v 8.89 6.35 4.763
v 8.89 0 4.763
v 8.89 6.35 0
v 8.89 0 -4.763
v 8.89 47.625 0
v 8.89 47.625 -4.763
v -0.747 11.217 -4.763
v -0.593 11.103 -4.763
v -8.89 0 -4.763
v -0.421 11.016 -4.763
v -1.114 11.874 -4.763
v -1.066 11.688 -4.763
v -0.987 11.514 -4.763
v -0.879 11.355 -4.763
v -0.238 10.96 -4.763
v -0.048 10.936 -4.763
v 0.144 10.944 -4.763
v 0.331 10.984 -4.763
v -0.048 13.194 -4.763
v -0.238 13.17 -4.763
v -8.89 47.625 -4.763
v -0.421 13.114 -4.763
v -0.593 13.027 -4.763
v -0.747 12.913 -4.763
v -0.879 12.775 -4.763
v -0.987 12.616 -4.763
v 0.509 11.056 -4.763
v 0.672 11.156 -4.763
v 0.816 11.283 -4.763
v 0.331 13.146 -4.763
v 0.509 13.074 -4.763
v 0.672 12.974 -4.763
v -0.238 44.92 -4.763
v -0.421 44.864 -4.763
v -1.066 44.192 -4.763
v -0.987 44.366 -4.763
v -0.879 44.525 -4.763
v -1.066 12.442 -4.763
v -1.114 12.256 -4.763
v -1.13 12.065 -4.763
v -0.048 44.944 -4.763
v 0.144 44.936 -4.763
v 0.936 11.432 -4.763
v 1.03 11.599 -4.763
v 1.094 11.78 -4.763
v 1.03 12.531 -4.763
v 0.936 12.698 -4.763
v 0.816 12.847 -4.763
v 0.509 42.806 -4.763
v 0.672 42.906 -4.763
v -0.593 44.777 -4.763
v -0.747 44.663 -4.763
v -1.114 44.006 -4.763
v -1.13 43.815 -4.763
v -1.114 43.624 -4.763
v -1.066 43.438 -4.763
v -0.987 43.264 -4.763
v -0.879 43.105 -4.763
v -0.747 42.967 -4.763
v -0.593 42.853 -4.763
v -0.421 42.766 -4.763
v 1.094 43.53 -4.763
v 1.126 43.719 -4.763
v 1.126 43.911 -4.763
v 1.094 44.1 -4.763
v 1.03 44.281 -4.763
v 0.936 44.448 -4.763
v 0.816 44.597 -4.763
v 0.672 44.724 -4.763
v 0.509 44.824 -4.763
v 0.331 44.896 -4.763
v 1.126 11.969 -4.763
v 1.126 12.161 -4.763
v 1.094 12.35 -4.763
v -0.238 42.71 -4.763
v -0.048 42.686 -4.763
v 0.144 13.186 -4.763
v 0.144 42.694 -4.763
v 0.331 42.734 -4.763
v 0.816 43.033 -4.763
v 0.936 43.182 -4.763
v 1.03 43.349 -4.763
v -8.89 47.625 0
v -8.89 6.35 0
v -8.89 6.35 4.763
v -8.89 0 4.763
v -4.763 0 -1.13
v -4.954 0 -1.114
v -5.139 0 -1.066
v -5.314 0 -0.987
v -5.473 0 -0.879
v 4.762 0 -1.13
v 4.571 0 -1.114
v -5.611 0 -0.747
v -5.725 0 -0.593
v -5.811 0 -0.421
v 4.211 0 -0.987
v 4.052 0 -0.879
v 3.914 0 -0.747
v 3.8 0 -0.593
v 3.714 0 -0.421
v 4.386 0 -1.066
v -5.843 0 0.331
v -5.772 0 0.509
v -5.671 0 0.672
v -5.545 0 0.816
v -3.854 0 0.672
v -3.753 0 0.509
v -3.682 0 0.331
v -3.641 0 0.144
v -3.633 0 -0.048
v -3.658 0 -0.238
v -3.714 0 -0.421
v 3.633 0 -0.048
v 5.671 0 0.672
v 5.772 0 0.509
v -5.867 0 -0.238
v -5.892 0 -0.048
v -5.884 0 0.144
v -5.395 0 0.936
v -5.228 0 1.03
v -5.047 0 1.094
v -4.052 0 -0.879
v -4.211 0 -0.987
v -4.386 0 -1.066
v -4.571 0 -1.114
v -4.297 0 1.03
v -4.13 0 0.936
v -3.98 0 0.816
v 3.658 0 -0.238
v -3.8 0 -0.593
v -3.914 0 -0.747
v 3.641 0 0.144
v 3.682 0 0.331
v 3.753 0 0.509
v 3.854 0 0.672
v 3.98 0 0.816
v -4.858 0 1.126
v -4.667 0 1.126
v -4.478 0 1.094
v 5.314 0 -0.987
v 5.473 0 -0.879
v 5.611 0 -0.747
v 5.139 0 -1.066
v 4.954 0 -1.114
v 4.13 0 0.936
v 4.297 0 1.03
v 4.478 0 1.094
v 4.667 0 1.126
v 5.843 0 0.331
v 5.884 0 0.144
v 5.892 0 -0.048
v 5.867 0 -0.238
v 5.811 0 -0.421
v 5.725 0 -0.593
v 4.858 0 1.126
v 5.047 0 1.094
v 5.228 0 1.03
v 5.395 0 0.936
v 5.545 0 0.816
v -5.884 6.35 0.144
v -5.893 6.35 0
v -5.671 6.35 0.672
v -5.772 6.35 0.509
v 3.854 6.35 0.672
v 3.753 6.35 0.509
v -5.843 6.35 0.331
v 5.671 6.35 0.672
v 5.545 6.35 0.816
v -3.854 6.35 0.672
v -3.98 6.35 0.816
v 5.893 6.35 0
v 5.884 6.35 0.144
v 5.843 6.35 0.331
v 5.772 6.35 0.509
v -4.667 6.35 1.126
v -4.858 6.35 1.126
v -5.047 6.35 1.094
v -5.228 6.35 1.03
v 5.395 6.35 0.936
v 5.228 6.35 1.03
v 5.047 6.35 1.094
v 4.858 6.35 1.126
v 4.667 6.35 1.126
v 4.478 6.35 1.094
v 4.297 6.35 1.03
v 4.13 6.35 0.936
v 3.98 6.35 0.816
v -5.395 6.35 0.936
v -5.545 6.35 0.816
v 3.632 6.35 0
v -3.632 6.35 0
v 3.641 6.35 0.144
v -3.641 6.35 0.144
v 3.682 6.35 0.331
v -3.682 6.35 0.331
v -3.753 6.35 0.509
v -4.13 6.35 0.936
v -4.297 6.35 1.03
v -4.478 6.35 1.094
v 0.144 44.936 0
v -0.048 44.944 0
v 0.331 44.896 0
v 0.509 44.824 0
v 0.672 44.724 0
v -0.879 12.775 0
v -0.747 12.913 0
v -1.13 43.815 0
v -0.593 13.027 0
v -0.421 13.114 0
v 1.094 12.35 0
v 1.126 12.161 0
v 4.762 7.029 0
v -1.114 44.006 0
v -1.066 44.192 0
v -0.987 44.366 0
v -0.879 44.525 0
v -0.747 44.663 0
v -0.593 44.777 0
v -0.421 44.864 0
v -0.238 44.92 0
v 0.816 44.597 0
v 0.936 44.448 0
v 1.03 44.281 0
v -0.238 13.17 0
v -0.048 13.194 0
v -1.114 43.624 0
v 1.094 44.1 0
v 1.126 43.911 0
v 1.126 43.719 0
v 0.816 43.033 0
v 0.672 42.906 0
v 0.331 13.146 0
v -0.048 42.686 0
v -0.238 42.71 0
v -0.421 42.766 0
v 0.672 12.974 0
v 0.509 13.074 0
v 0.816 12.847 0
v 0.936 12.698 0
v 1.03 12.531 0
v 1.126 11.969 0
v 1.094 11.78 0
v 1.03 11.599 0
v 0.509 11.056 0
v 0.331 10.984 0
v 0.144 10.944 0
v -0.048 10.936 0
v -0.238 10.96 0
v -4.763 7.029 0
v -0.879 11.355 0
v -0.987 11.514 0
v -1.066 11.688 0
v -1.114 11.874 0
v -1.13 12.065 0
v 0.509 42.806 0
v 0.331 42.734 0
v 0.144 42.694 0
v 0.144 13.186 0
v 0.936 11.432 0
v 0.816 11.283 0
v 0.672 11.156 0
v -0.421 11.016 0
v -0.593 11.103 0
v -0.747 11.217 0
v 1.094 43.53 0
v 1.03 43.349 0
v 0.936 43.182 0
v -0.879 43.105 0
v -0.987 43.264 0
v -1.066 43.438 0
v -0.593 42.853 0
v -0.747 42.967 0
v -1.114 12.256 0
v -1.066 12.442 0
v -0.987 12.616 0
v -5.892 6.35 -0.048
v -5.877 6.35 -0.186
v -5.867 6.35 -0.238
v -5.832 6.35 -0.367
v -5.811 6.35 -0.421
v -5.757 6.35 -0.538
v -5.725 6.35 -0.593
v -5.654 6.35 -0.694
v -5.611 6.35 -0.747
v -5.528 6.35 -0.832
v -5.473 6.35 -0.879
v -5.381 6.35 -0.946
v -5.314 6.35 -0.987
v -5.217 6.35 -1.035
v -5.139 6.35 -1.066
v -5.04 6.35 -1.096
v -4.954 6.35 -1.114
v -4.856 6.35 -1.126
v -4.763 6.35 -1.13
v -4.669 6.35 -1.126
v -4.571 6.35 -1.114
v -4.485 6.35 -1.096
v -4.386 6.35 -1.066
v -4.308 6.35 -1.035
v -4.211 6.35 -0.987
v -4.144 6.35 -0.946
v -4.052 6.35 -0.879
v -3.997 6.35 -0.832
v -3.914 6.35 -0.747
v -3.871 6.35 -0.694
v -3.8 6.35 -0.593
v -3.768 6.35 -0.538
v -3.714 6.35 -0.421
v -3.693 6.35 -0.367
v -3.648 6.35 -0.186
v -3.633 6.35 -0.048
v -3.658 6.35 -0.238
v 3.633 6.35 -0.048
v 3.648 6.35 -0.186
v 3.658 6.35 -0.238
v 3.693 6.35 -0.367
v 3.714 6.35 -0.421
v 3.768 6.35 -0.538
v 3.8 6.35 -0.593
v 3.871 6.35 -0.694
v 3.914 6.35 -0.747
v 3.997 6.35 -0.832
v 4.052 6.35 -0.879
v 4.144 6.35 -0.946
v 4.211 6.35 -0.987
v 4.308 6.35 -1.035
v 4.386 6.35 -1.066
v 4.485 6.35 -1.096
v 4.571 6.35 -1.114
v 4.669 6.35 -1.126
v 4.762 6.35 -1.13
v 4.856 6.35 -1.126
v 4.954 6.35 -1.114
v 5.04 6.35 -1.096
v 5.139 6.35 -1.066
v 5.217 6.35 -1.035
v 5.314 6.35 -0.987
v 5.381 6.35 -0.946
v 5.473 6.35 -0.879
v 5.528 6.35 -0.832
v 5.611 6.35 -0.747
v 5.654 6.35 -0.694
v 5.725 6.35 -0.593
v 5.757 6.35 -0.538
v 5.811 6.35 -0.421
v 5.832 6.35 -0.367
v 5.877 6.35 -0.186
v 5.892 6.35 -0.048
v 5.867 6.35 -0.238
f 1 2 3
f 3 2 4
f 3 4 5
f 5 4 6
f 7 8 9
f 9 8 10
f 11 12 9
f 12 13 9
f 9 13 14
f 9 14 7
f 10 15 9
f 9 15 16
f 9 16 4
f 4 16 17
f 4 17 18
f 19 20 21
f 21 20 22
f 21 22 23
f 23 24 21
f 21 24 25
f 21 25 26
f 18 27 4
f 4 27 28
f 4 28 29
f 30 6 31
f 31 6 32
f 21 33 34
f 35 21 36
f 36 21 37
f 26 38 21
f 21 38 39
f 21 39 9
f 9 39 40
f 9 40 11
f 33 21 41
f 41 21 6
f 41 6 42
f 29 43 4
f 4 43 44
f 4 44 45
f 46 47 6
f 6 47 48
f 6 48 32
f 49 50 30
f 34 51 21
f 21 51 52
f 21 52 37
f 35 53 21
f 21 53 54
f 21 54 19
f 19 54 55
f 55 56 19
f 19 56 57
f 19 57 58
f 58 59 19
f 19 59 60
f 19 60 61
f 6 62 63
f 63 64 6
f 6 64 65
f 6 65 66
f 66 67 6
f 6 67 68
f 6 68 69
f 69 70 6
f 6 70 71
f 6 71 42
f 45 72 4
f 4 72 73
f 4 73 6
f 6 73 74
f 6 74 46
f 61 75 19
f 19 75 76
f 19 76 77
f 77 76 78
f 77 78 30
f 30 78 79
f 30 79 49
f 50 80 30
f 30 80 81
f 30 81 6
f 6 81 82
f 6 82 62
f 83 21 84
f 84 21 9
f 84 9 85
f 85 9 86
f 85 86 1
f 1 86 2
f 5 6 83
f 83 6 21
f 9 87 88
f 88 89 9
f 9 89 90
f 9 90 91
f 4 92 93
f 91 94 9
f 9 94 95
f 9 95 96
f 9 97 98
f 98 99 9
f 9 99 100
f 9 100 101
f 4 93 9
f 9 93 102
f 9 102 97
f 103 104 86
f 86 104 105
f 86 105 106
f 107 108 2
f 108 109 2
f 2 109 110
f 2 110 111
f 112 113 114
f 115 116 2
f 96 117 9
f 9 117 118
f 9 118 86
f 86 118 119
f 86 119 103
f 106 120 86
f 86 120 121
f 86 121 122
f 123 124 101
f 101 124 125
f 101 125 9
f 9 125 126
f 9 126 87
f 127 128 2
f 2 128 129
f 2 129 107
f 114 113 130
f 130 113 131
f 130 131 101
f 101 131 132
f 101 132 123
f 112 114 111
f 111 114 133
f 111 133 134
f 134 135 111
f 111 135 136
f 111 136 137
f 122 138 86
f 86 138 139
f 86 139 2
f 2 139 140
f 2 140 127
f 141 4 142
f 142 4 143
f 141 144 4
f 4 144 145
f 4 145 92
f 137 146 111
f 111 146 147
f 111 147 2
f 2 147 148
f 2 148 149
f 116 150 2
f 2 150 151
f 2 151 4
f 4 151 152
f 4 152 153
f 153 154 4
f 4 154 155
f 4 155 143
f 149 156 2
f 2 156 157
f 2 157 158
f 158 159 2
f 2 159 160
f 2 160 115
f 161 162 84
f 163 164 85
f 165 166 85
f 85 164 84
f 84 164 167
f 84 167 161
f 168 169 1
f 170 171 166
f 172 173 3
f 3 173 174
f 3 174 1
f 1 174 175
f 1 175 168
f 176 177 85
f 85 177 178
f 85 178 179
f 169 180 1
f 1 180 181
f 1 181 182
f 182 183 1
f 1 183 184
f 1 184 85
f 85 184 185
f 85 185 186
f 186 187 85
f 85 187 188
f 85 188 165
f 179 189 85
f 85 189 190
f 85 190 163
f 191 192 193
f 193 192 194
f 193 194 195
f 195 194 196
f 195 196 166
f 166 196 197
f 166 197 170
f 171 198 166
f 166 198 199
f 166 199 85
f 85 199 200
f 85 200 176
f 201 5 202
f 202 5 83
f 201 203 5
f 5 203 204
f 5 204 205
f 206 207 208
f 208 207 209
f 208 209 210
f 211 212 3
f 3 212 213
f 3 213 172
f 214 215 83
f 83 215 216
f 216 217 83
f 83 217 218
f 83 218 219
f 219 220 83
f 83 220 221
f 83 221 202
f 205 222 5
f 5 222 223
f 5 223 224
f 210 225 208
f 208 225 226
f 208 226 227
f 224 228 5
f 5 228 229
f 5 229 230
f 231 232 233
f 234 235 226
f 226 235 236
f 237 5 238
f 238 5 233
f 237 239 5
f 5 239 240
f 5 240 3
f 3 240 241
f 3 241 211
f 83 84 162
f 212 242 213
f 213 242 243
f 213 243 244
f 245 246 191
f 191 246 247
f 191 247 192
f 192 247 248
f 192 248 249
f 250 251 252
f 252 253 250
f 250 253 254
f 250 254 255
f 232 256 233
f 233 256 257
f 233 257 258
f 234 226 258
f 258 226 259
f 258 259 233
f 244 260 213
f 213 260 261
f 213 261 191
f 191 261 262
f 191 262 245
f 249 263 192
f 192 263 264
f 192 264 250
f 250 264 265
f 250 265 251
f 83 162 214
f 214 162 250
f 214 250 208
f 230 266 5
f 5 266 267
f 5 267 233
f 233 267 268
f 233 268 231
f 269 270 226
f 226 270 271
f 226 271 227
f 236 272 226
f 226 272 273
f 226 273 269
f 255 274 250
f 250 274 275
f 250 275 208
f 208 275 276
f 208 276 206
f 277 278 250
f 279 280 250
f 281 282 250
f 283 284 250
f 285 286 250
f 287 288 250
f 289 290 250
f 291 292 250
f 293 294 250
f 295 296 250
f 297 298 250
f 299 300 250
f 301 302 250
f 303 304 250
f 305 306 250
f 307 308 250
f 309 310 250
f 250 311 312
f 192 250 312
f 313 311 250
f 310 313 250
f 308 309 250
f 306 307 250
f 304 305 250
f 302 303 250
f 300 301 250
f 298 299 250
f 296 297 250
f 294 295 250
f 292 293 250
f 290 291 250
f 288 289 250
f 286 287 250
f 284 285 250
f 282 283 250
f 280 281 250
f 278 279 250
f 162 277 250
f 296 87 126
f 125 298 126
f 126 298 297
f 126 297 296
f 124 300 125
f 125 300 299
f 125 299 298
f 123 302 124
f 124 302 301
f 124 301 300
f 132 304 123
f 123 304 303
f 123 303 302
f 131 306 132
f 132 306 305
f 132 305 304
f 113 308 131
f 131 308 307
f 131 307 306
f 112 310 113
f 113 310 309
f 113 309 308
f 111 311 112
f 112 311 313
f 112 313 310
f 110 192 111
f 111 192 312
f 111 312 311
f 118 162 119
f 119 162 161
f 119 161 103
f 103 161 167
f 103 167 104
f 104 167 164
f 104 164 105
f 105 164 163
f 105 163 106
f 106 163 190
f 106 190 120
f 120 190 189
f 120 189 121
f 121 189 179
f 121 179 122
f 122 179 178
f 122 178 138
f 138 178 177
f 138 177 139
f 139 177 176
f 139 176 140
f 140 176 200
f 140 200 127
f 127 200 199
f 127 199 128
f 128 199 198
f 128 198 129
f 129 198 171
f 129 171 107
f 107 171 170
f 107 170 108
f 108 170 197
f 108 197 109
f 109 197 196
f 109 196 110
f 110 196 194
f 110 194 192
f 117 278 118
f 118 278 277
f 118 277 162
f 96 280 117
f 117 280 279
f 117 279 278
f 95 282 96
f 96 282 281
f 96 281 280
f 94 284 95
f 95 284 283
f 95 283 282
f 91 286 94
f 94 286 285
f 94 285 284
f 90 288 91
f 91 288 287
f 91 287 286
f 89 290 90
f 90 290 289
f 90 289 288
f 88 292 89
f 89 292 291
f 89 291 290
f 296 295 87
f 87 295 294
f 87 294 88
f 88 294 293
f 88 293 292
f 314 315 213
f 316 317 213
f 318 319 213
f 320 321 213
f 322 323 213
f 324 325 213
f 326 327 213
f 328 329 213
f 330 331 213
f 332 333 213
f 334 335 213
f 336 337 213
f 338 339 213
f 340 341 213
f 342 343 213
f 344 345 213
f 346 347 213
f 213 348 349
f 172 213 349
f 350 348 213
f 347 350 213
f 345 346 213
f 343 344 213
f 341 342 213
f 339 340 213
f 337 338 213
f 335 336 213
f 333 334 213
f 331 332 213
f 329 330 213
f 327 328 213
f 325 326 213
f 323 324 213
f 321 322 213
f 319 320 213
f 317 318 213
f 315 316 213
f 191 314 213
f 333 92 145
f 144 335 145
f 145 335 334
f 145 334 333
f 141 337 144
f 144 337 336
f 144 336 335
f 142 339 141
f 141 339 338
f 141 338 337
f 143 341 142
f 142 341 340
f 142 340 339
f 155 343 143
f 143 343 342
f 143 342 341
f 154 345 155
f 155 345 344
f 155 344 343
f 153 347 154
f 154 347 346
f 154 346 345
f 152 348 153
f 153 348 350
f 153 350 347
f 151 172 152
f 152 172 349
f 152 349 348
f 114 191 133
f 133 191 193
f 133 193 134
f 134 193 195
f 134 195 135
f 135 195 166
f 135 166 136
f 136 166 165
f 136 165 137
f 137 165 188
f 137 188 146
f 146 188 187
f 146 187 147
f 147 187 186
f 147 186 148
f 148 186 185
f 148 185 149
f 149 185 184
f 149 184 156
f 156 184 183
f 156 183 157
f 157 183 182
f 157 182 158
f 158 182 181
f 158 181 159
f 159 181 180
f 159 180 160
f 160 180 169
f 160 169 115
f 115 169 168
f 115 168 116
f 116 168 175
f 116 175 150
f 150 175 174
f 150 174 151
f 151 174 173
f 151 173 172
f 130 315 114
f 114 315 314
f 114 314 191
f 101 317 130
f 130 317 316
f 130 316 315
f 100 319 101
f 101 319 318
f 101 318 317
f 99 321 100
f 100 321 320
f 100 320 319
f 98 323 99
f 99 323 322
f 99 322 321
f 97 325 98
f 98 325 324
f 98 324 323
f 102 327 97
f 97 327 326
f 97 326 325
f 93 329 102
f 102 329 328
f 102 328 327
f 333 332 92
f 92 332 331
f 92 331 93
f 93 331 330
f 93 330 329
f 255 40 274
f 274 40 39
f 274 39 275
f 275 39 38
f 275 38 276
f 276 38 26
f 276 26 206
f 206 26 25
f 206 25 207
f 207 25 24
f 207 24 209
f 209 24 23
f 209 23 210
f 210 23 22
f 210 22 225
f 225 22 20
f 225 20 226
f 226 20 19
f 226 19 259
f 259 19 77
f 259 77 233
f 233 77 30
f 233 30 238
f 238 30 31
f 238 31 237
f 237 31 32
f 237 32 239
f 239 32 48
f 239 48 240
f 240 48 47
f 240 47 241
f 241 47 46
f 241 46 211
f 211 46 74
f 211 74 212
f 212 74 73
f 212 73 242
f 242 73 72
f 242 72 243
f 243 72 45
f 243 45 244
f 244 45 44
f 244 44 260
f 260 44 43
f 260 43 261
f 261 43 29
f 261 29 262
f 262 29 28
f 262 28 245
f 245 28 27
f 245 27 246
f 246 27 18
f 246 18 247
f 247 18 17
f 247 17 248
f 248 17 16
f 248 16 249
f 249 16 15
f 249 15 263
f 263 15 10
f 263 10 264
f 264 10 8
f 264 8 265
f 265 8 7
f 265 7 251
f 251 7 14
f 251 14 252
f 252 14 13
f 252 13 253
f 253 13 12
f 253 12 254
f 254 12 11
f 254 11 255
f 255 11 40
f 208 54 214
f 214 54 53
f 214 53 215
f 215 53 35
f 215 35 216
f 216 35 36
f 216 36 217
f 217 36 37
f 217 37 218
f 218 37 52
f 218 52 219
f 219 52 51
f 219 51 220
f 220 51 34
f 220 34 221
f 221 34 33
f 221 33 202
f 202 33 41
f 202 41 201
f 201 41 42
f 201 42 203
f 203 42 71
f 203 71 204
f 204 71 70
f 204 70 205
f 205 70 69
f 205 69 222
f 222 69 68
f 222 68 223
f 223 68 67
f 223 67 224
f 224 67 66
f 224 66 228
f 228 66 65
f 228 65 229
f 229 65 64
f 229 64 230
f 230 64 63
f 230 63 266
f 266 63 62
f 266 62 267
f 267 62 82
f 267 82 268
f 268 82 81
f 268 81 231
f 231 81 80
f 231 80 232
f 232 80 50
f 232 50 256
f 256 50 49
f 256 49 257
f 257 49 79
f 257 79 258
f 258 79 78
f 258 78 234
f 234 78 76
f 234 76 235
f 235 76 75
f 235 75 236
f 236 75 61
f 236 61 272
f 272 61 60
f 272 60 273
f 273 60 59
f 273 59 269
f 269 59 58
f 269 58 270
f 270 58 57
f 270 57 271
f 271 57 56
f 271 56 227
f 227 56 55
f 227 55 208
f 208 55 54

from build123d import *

# Parameters (mm, degrees)
SKETCH1_W                 = 17.78
SKETCH1_H                 = 9.525
BOSS_EXTRUDE1_DEPTH       = 47.625
SKETCH2_W                 = 17.78
SKETCH2_H                 = 4.7625
CUT_EXTRUDE1_DEPTH        = 41.275
F_4_40_TAPPED_HOLE1_D     = 2.2606
F_4_40_TAPPED_HOLE1_DEPTH = 6.35
F_4_40_TAPPED_HOLE1_TIP   = 0.679152758
SKETCH8_R                 = 1.1303
CUT_EXTRUDE2_DEPTH        = 50.375078228


with BuildPart() as part:
    # Sketch1 → Boss-Extrude1 (new body)
    with BuildSketch(Plane(origin=(0, 0, 0), x_dir=(1, 0, 0), z_dir=(0, 1, 0))):
        Rectangle(SKETCH1_W, SKETCH1_H)
    extrude(amount=BOSS_EXTRUDE1_DEPTH)

    # Sketch2 → Cut-Extrude1 (cut)
    with BuildSketch(Plane(origin=(0, 47.625, 0), x_dir=(1, 0, 0), z_dir=(0, 1, 0))):
        with Locations((0, -2.38125)):
            Rectangle(SKETCH2_W, SKETCH2_H)
    extrude(amount=-CUT_EXTRUDE1_DEPTH, mode=Mode.SUBTRACT)

    # #4-40 Tapped Hole1
    with Locations(Plane(origin=(0, 0, 0), x_dir=(-1, 0, 0), z_dir=(0, -1, 0))):
        with Locations((-4.7625, 0), (4.7625, 0)):
            Hole(F_4_40_TAPPED_HOLE1_D / 2, depth=F_4_40_TAPPED_HOLE1_DEPTH)
            with Locations((0, 0, -(F_4_40_TAPPED_HOLE1_DEPTH + F_4_40_TAPPED_HOLE1_TIP / 2))):  # 118° drill point
                Cone(0, F_4_40_TAPPED_HOLE1_D / 2, F_4_40_TAPPED_HOLE1_TIP, mode=Mode.SUBTRACT)

    # Sketch8 → Cut-Extrude2 (cut, through all)
    with BuildSketch(Plane(origin=(0, 0, -4.7625), x_dir=(-1, 0, 0), z_dir=(0, 0, -1))):
        with Locations((0, 43.815)):
            Circle(SKETCH8_R)
        with Locations((0, 12.065)):
            Circle(SKETCH8_R)
    extrude(amount=-CUT_EXTRUDE2_DEPTH, mode=Mode.SUBTRACT)


solid = part.part
